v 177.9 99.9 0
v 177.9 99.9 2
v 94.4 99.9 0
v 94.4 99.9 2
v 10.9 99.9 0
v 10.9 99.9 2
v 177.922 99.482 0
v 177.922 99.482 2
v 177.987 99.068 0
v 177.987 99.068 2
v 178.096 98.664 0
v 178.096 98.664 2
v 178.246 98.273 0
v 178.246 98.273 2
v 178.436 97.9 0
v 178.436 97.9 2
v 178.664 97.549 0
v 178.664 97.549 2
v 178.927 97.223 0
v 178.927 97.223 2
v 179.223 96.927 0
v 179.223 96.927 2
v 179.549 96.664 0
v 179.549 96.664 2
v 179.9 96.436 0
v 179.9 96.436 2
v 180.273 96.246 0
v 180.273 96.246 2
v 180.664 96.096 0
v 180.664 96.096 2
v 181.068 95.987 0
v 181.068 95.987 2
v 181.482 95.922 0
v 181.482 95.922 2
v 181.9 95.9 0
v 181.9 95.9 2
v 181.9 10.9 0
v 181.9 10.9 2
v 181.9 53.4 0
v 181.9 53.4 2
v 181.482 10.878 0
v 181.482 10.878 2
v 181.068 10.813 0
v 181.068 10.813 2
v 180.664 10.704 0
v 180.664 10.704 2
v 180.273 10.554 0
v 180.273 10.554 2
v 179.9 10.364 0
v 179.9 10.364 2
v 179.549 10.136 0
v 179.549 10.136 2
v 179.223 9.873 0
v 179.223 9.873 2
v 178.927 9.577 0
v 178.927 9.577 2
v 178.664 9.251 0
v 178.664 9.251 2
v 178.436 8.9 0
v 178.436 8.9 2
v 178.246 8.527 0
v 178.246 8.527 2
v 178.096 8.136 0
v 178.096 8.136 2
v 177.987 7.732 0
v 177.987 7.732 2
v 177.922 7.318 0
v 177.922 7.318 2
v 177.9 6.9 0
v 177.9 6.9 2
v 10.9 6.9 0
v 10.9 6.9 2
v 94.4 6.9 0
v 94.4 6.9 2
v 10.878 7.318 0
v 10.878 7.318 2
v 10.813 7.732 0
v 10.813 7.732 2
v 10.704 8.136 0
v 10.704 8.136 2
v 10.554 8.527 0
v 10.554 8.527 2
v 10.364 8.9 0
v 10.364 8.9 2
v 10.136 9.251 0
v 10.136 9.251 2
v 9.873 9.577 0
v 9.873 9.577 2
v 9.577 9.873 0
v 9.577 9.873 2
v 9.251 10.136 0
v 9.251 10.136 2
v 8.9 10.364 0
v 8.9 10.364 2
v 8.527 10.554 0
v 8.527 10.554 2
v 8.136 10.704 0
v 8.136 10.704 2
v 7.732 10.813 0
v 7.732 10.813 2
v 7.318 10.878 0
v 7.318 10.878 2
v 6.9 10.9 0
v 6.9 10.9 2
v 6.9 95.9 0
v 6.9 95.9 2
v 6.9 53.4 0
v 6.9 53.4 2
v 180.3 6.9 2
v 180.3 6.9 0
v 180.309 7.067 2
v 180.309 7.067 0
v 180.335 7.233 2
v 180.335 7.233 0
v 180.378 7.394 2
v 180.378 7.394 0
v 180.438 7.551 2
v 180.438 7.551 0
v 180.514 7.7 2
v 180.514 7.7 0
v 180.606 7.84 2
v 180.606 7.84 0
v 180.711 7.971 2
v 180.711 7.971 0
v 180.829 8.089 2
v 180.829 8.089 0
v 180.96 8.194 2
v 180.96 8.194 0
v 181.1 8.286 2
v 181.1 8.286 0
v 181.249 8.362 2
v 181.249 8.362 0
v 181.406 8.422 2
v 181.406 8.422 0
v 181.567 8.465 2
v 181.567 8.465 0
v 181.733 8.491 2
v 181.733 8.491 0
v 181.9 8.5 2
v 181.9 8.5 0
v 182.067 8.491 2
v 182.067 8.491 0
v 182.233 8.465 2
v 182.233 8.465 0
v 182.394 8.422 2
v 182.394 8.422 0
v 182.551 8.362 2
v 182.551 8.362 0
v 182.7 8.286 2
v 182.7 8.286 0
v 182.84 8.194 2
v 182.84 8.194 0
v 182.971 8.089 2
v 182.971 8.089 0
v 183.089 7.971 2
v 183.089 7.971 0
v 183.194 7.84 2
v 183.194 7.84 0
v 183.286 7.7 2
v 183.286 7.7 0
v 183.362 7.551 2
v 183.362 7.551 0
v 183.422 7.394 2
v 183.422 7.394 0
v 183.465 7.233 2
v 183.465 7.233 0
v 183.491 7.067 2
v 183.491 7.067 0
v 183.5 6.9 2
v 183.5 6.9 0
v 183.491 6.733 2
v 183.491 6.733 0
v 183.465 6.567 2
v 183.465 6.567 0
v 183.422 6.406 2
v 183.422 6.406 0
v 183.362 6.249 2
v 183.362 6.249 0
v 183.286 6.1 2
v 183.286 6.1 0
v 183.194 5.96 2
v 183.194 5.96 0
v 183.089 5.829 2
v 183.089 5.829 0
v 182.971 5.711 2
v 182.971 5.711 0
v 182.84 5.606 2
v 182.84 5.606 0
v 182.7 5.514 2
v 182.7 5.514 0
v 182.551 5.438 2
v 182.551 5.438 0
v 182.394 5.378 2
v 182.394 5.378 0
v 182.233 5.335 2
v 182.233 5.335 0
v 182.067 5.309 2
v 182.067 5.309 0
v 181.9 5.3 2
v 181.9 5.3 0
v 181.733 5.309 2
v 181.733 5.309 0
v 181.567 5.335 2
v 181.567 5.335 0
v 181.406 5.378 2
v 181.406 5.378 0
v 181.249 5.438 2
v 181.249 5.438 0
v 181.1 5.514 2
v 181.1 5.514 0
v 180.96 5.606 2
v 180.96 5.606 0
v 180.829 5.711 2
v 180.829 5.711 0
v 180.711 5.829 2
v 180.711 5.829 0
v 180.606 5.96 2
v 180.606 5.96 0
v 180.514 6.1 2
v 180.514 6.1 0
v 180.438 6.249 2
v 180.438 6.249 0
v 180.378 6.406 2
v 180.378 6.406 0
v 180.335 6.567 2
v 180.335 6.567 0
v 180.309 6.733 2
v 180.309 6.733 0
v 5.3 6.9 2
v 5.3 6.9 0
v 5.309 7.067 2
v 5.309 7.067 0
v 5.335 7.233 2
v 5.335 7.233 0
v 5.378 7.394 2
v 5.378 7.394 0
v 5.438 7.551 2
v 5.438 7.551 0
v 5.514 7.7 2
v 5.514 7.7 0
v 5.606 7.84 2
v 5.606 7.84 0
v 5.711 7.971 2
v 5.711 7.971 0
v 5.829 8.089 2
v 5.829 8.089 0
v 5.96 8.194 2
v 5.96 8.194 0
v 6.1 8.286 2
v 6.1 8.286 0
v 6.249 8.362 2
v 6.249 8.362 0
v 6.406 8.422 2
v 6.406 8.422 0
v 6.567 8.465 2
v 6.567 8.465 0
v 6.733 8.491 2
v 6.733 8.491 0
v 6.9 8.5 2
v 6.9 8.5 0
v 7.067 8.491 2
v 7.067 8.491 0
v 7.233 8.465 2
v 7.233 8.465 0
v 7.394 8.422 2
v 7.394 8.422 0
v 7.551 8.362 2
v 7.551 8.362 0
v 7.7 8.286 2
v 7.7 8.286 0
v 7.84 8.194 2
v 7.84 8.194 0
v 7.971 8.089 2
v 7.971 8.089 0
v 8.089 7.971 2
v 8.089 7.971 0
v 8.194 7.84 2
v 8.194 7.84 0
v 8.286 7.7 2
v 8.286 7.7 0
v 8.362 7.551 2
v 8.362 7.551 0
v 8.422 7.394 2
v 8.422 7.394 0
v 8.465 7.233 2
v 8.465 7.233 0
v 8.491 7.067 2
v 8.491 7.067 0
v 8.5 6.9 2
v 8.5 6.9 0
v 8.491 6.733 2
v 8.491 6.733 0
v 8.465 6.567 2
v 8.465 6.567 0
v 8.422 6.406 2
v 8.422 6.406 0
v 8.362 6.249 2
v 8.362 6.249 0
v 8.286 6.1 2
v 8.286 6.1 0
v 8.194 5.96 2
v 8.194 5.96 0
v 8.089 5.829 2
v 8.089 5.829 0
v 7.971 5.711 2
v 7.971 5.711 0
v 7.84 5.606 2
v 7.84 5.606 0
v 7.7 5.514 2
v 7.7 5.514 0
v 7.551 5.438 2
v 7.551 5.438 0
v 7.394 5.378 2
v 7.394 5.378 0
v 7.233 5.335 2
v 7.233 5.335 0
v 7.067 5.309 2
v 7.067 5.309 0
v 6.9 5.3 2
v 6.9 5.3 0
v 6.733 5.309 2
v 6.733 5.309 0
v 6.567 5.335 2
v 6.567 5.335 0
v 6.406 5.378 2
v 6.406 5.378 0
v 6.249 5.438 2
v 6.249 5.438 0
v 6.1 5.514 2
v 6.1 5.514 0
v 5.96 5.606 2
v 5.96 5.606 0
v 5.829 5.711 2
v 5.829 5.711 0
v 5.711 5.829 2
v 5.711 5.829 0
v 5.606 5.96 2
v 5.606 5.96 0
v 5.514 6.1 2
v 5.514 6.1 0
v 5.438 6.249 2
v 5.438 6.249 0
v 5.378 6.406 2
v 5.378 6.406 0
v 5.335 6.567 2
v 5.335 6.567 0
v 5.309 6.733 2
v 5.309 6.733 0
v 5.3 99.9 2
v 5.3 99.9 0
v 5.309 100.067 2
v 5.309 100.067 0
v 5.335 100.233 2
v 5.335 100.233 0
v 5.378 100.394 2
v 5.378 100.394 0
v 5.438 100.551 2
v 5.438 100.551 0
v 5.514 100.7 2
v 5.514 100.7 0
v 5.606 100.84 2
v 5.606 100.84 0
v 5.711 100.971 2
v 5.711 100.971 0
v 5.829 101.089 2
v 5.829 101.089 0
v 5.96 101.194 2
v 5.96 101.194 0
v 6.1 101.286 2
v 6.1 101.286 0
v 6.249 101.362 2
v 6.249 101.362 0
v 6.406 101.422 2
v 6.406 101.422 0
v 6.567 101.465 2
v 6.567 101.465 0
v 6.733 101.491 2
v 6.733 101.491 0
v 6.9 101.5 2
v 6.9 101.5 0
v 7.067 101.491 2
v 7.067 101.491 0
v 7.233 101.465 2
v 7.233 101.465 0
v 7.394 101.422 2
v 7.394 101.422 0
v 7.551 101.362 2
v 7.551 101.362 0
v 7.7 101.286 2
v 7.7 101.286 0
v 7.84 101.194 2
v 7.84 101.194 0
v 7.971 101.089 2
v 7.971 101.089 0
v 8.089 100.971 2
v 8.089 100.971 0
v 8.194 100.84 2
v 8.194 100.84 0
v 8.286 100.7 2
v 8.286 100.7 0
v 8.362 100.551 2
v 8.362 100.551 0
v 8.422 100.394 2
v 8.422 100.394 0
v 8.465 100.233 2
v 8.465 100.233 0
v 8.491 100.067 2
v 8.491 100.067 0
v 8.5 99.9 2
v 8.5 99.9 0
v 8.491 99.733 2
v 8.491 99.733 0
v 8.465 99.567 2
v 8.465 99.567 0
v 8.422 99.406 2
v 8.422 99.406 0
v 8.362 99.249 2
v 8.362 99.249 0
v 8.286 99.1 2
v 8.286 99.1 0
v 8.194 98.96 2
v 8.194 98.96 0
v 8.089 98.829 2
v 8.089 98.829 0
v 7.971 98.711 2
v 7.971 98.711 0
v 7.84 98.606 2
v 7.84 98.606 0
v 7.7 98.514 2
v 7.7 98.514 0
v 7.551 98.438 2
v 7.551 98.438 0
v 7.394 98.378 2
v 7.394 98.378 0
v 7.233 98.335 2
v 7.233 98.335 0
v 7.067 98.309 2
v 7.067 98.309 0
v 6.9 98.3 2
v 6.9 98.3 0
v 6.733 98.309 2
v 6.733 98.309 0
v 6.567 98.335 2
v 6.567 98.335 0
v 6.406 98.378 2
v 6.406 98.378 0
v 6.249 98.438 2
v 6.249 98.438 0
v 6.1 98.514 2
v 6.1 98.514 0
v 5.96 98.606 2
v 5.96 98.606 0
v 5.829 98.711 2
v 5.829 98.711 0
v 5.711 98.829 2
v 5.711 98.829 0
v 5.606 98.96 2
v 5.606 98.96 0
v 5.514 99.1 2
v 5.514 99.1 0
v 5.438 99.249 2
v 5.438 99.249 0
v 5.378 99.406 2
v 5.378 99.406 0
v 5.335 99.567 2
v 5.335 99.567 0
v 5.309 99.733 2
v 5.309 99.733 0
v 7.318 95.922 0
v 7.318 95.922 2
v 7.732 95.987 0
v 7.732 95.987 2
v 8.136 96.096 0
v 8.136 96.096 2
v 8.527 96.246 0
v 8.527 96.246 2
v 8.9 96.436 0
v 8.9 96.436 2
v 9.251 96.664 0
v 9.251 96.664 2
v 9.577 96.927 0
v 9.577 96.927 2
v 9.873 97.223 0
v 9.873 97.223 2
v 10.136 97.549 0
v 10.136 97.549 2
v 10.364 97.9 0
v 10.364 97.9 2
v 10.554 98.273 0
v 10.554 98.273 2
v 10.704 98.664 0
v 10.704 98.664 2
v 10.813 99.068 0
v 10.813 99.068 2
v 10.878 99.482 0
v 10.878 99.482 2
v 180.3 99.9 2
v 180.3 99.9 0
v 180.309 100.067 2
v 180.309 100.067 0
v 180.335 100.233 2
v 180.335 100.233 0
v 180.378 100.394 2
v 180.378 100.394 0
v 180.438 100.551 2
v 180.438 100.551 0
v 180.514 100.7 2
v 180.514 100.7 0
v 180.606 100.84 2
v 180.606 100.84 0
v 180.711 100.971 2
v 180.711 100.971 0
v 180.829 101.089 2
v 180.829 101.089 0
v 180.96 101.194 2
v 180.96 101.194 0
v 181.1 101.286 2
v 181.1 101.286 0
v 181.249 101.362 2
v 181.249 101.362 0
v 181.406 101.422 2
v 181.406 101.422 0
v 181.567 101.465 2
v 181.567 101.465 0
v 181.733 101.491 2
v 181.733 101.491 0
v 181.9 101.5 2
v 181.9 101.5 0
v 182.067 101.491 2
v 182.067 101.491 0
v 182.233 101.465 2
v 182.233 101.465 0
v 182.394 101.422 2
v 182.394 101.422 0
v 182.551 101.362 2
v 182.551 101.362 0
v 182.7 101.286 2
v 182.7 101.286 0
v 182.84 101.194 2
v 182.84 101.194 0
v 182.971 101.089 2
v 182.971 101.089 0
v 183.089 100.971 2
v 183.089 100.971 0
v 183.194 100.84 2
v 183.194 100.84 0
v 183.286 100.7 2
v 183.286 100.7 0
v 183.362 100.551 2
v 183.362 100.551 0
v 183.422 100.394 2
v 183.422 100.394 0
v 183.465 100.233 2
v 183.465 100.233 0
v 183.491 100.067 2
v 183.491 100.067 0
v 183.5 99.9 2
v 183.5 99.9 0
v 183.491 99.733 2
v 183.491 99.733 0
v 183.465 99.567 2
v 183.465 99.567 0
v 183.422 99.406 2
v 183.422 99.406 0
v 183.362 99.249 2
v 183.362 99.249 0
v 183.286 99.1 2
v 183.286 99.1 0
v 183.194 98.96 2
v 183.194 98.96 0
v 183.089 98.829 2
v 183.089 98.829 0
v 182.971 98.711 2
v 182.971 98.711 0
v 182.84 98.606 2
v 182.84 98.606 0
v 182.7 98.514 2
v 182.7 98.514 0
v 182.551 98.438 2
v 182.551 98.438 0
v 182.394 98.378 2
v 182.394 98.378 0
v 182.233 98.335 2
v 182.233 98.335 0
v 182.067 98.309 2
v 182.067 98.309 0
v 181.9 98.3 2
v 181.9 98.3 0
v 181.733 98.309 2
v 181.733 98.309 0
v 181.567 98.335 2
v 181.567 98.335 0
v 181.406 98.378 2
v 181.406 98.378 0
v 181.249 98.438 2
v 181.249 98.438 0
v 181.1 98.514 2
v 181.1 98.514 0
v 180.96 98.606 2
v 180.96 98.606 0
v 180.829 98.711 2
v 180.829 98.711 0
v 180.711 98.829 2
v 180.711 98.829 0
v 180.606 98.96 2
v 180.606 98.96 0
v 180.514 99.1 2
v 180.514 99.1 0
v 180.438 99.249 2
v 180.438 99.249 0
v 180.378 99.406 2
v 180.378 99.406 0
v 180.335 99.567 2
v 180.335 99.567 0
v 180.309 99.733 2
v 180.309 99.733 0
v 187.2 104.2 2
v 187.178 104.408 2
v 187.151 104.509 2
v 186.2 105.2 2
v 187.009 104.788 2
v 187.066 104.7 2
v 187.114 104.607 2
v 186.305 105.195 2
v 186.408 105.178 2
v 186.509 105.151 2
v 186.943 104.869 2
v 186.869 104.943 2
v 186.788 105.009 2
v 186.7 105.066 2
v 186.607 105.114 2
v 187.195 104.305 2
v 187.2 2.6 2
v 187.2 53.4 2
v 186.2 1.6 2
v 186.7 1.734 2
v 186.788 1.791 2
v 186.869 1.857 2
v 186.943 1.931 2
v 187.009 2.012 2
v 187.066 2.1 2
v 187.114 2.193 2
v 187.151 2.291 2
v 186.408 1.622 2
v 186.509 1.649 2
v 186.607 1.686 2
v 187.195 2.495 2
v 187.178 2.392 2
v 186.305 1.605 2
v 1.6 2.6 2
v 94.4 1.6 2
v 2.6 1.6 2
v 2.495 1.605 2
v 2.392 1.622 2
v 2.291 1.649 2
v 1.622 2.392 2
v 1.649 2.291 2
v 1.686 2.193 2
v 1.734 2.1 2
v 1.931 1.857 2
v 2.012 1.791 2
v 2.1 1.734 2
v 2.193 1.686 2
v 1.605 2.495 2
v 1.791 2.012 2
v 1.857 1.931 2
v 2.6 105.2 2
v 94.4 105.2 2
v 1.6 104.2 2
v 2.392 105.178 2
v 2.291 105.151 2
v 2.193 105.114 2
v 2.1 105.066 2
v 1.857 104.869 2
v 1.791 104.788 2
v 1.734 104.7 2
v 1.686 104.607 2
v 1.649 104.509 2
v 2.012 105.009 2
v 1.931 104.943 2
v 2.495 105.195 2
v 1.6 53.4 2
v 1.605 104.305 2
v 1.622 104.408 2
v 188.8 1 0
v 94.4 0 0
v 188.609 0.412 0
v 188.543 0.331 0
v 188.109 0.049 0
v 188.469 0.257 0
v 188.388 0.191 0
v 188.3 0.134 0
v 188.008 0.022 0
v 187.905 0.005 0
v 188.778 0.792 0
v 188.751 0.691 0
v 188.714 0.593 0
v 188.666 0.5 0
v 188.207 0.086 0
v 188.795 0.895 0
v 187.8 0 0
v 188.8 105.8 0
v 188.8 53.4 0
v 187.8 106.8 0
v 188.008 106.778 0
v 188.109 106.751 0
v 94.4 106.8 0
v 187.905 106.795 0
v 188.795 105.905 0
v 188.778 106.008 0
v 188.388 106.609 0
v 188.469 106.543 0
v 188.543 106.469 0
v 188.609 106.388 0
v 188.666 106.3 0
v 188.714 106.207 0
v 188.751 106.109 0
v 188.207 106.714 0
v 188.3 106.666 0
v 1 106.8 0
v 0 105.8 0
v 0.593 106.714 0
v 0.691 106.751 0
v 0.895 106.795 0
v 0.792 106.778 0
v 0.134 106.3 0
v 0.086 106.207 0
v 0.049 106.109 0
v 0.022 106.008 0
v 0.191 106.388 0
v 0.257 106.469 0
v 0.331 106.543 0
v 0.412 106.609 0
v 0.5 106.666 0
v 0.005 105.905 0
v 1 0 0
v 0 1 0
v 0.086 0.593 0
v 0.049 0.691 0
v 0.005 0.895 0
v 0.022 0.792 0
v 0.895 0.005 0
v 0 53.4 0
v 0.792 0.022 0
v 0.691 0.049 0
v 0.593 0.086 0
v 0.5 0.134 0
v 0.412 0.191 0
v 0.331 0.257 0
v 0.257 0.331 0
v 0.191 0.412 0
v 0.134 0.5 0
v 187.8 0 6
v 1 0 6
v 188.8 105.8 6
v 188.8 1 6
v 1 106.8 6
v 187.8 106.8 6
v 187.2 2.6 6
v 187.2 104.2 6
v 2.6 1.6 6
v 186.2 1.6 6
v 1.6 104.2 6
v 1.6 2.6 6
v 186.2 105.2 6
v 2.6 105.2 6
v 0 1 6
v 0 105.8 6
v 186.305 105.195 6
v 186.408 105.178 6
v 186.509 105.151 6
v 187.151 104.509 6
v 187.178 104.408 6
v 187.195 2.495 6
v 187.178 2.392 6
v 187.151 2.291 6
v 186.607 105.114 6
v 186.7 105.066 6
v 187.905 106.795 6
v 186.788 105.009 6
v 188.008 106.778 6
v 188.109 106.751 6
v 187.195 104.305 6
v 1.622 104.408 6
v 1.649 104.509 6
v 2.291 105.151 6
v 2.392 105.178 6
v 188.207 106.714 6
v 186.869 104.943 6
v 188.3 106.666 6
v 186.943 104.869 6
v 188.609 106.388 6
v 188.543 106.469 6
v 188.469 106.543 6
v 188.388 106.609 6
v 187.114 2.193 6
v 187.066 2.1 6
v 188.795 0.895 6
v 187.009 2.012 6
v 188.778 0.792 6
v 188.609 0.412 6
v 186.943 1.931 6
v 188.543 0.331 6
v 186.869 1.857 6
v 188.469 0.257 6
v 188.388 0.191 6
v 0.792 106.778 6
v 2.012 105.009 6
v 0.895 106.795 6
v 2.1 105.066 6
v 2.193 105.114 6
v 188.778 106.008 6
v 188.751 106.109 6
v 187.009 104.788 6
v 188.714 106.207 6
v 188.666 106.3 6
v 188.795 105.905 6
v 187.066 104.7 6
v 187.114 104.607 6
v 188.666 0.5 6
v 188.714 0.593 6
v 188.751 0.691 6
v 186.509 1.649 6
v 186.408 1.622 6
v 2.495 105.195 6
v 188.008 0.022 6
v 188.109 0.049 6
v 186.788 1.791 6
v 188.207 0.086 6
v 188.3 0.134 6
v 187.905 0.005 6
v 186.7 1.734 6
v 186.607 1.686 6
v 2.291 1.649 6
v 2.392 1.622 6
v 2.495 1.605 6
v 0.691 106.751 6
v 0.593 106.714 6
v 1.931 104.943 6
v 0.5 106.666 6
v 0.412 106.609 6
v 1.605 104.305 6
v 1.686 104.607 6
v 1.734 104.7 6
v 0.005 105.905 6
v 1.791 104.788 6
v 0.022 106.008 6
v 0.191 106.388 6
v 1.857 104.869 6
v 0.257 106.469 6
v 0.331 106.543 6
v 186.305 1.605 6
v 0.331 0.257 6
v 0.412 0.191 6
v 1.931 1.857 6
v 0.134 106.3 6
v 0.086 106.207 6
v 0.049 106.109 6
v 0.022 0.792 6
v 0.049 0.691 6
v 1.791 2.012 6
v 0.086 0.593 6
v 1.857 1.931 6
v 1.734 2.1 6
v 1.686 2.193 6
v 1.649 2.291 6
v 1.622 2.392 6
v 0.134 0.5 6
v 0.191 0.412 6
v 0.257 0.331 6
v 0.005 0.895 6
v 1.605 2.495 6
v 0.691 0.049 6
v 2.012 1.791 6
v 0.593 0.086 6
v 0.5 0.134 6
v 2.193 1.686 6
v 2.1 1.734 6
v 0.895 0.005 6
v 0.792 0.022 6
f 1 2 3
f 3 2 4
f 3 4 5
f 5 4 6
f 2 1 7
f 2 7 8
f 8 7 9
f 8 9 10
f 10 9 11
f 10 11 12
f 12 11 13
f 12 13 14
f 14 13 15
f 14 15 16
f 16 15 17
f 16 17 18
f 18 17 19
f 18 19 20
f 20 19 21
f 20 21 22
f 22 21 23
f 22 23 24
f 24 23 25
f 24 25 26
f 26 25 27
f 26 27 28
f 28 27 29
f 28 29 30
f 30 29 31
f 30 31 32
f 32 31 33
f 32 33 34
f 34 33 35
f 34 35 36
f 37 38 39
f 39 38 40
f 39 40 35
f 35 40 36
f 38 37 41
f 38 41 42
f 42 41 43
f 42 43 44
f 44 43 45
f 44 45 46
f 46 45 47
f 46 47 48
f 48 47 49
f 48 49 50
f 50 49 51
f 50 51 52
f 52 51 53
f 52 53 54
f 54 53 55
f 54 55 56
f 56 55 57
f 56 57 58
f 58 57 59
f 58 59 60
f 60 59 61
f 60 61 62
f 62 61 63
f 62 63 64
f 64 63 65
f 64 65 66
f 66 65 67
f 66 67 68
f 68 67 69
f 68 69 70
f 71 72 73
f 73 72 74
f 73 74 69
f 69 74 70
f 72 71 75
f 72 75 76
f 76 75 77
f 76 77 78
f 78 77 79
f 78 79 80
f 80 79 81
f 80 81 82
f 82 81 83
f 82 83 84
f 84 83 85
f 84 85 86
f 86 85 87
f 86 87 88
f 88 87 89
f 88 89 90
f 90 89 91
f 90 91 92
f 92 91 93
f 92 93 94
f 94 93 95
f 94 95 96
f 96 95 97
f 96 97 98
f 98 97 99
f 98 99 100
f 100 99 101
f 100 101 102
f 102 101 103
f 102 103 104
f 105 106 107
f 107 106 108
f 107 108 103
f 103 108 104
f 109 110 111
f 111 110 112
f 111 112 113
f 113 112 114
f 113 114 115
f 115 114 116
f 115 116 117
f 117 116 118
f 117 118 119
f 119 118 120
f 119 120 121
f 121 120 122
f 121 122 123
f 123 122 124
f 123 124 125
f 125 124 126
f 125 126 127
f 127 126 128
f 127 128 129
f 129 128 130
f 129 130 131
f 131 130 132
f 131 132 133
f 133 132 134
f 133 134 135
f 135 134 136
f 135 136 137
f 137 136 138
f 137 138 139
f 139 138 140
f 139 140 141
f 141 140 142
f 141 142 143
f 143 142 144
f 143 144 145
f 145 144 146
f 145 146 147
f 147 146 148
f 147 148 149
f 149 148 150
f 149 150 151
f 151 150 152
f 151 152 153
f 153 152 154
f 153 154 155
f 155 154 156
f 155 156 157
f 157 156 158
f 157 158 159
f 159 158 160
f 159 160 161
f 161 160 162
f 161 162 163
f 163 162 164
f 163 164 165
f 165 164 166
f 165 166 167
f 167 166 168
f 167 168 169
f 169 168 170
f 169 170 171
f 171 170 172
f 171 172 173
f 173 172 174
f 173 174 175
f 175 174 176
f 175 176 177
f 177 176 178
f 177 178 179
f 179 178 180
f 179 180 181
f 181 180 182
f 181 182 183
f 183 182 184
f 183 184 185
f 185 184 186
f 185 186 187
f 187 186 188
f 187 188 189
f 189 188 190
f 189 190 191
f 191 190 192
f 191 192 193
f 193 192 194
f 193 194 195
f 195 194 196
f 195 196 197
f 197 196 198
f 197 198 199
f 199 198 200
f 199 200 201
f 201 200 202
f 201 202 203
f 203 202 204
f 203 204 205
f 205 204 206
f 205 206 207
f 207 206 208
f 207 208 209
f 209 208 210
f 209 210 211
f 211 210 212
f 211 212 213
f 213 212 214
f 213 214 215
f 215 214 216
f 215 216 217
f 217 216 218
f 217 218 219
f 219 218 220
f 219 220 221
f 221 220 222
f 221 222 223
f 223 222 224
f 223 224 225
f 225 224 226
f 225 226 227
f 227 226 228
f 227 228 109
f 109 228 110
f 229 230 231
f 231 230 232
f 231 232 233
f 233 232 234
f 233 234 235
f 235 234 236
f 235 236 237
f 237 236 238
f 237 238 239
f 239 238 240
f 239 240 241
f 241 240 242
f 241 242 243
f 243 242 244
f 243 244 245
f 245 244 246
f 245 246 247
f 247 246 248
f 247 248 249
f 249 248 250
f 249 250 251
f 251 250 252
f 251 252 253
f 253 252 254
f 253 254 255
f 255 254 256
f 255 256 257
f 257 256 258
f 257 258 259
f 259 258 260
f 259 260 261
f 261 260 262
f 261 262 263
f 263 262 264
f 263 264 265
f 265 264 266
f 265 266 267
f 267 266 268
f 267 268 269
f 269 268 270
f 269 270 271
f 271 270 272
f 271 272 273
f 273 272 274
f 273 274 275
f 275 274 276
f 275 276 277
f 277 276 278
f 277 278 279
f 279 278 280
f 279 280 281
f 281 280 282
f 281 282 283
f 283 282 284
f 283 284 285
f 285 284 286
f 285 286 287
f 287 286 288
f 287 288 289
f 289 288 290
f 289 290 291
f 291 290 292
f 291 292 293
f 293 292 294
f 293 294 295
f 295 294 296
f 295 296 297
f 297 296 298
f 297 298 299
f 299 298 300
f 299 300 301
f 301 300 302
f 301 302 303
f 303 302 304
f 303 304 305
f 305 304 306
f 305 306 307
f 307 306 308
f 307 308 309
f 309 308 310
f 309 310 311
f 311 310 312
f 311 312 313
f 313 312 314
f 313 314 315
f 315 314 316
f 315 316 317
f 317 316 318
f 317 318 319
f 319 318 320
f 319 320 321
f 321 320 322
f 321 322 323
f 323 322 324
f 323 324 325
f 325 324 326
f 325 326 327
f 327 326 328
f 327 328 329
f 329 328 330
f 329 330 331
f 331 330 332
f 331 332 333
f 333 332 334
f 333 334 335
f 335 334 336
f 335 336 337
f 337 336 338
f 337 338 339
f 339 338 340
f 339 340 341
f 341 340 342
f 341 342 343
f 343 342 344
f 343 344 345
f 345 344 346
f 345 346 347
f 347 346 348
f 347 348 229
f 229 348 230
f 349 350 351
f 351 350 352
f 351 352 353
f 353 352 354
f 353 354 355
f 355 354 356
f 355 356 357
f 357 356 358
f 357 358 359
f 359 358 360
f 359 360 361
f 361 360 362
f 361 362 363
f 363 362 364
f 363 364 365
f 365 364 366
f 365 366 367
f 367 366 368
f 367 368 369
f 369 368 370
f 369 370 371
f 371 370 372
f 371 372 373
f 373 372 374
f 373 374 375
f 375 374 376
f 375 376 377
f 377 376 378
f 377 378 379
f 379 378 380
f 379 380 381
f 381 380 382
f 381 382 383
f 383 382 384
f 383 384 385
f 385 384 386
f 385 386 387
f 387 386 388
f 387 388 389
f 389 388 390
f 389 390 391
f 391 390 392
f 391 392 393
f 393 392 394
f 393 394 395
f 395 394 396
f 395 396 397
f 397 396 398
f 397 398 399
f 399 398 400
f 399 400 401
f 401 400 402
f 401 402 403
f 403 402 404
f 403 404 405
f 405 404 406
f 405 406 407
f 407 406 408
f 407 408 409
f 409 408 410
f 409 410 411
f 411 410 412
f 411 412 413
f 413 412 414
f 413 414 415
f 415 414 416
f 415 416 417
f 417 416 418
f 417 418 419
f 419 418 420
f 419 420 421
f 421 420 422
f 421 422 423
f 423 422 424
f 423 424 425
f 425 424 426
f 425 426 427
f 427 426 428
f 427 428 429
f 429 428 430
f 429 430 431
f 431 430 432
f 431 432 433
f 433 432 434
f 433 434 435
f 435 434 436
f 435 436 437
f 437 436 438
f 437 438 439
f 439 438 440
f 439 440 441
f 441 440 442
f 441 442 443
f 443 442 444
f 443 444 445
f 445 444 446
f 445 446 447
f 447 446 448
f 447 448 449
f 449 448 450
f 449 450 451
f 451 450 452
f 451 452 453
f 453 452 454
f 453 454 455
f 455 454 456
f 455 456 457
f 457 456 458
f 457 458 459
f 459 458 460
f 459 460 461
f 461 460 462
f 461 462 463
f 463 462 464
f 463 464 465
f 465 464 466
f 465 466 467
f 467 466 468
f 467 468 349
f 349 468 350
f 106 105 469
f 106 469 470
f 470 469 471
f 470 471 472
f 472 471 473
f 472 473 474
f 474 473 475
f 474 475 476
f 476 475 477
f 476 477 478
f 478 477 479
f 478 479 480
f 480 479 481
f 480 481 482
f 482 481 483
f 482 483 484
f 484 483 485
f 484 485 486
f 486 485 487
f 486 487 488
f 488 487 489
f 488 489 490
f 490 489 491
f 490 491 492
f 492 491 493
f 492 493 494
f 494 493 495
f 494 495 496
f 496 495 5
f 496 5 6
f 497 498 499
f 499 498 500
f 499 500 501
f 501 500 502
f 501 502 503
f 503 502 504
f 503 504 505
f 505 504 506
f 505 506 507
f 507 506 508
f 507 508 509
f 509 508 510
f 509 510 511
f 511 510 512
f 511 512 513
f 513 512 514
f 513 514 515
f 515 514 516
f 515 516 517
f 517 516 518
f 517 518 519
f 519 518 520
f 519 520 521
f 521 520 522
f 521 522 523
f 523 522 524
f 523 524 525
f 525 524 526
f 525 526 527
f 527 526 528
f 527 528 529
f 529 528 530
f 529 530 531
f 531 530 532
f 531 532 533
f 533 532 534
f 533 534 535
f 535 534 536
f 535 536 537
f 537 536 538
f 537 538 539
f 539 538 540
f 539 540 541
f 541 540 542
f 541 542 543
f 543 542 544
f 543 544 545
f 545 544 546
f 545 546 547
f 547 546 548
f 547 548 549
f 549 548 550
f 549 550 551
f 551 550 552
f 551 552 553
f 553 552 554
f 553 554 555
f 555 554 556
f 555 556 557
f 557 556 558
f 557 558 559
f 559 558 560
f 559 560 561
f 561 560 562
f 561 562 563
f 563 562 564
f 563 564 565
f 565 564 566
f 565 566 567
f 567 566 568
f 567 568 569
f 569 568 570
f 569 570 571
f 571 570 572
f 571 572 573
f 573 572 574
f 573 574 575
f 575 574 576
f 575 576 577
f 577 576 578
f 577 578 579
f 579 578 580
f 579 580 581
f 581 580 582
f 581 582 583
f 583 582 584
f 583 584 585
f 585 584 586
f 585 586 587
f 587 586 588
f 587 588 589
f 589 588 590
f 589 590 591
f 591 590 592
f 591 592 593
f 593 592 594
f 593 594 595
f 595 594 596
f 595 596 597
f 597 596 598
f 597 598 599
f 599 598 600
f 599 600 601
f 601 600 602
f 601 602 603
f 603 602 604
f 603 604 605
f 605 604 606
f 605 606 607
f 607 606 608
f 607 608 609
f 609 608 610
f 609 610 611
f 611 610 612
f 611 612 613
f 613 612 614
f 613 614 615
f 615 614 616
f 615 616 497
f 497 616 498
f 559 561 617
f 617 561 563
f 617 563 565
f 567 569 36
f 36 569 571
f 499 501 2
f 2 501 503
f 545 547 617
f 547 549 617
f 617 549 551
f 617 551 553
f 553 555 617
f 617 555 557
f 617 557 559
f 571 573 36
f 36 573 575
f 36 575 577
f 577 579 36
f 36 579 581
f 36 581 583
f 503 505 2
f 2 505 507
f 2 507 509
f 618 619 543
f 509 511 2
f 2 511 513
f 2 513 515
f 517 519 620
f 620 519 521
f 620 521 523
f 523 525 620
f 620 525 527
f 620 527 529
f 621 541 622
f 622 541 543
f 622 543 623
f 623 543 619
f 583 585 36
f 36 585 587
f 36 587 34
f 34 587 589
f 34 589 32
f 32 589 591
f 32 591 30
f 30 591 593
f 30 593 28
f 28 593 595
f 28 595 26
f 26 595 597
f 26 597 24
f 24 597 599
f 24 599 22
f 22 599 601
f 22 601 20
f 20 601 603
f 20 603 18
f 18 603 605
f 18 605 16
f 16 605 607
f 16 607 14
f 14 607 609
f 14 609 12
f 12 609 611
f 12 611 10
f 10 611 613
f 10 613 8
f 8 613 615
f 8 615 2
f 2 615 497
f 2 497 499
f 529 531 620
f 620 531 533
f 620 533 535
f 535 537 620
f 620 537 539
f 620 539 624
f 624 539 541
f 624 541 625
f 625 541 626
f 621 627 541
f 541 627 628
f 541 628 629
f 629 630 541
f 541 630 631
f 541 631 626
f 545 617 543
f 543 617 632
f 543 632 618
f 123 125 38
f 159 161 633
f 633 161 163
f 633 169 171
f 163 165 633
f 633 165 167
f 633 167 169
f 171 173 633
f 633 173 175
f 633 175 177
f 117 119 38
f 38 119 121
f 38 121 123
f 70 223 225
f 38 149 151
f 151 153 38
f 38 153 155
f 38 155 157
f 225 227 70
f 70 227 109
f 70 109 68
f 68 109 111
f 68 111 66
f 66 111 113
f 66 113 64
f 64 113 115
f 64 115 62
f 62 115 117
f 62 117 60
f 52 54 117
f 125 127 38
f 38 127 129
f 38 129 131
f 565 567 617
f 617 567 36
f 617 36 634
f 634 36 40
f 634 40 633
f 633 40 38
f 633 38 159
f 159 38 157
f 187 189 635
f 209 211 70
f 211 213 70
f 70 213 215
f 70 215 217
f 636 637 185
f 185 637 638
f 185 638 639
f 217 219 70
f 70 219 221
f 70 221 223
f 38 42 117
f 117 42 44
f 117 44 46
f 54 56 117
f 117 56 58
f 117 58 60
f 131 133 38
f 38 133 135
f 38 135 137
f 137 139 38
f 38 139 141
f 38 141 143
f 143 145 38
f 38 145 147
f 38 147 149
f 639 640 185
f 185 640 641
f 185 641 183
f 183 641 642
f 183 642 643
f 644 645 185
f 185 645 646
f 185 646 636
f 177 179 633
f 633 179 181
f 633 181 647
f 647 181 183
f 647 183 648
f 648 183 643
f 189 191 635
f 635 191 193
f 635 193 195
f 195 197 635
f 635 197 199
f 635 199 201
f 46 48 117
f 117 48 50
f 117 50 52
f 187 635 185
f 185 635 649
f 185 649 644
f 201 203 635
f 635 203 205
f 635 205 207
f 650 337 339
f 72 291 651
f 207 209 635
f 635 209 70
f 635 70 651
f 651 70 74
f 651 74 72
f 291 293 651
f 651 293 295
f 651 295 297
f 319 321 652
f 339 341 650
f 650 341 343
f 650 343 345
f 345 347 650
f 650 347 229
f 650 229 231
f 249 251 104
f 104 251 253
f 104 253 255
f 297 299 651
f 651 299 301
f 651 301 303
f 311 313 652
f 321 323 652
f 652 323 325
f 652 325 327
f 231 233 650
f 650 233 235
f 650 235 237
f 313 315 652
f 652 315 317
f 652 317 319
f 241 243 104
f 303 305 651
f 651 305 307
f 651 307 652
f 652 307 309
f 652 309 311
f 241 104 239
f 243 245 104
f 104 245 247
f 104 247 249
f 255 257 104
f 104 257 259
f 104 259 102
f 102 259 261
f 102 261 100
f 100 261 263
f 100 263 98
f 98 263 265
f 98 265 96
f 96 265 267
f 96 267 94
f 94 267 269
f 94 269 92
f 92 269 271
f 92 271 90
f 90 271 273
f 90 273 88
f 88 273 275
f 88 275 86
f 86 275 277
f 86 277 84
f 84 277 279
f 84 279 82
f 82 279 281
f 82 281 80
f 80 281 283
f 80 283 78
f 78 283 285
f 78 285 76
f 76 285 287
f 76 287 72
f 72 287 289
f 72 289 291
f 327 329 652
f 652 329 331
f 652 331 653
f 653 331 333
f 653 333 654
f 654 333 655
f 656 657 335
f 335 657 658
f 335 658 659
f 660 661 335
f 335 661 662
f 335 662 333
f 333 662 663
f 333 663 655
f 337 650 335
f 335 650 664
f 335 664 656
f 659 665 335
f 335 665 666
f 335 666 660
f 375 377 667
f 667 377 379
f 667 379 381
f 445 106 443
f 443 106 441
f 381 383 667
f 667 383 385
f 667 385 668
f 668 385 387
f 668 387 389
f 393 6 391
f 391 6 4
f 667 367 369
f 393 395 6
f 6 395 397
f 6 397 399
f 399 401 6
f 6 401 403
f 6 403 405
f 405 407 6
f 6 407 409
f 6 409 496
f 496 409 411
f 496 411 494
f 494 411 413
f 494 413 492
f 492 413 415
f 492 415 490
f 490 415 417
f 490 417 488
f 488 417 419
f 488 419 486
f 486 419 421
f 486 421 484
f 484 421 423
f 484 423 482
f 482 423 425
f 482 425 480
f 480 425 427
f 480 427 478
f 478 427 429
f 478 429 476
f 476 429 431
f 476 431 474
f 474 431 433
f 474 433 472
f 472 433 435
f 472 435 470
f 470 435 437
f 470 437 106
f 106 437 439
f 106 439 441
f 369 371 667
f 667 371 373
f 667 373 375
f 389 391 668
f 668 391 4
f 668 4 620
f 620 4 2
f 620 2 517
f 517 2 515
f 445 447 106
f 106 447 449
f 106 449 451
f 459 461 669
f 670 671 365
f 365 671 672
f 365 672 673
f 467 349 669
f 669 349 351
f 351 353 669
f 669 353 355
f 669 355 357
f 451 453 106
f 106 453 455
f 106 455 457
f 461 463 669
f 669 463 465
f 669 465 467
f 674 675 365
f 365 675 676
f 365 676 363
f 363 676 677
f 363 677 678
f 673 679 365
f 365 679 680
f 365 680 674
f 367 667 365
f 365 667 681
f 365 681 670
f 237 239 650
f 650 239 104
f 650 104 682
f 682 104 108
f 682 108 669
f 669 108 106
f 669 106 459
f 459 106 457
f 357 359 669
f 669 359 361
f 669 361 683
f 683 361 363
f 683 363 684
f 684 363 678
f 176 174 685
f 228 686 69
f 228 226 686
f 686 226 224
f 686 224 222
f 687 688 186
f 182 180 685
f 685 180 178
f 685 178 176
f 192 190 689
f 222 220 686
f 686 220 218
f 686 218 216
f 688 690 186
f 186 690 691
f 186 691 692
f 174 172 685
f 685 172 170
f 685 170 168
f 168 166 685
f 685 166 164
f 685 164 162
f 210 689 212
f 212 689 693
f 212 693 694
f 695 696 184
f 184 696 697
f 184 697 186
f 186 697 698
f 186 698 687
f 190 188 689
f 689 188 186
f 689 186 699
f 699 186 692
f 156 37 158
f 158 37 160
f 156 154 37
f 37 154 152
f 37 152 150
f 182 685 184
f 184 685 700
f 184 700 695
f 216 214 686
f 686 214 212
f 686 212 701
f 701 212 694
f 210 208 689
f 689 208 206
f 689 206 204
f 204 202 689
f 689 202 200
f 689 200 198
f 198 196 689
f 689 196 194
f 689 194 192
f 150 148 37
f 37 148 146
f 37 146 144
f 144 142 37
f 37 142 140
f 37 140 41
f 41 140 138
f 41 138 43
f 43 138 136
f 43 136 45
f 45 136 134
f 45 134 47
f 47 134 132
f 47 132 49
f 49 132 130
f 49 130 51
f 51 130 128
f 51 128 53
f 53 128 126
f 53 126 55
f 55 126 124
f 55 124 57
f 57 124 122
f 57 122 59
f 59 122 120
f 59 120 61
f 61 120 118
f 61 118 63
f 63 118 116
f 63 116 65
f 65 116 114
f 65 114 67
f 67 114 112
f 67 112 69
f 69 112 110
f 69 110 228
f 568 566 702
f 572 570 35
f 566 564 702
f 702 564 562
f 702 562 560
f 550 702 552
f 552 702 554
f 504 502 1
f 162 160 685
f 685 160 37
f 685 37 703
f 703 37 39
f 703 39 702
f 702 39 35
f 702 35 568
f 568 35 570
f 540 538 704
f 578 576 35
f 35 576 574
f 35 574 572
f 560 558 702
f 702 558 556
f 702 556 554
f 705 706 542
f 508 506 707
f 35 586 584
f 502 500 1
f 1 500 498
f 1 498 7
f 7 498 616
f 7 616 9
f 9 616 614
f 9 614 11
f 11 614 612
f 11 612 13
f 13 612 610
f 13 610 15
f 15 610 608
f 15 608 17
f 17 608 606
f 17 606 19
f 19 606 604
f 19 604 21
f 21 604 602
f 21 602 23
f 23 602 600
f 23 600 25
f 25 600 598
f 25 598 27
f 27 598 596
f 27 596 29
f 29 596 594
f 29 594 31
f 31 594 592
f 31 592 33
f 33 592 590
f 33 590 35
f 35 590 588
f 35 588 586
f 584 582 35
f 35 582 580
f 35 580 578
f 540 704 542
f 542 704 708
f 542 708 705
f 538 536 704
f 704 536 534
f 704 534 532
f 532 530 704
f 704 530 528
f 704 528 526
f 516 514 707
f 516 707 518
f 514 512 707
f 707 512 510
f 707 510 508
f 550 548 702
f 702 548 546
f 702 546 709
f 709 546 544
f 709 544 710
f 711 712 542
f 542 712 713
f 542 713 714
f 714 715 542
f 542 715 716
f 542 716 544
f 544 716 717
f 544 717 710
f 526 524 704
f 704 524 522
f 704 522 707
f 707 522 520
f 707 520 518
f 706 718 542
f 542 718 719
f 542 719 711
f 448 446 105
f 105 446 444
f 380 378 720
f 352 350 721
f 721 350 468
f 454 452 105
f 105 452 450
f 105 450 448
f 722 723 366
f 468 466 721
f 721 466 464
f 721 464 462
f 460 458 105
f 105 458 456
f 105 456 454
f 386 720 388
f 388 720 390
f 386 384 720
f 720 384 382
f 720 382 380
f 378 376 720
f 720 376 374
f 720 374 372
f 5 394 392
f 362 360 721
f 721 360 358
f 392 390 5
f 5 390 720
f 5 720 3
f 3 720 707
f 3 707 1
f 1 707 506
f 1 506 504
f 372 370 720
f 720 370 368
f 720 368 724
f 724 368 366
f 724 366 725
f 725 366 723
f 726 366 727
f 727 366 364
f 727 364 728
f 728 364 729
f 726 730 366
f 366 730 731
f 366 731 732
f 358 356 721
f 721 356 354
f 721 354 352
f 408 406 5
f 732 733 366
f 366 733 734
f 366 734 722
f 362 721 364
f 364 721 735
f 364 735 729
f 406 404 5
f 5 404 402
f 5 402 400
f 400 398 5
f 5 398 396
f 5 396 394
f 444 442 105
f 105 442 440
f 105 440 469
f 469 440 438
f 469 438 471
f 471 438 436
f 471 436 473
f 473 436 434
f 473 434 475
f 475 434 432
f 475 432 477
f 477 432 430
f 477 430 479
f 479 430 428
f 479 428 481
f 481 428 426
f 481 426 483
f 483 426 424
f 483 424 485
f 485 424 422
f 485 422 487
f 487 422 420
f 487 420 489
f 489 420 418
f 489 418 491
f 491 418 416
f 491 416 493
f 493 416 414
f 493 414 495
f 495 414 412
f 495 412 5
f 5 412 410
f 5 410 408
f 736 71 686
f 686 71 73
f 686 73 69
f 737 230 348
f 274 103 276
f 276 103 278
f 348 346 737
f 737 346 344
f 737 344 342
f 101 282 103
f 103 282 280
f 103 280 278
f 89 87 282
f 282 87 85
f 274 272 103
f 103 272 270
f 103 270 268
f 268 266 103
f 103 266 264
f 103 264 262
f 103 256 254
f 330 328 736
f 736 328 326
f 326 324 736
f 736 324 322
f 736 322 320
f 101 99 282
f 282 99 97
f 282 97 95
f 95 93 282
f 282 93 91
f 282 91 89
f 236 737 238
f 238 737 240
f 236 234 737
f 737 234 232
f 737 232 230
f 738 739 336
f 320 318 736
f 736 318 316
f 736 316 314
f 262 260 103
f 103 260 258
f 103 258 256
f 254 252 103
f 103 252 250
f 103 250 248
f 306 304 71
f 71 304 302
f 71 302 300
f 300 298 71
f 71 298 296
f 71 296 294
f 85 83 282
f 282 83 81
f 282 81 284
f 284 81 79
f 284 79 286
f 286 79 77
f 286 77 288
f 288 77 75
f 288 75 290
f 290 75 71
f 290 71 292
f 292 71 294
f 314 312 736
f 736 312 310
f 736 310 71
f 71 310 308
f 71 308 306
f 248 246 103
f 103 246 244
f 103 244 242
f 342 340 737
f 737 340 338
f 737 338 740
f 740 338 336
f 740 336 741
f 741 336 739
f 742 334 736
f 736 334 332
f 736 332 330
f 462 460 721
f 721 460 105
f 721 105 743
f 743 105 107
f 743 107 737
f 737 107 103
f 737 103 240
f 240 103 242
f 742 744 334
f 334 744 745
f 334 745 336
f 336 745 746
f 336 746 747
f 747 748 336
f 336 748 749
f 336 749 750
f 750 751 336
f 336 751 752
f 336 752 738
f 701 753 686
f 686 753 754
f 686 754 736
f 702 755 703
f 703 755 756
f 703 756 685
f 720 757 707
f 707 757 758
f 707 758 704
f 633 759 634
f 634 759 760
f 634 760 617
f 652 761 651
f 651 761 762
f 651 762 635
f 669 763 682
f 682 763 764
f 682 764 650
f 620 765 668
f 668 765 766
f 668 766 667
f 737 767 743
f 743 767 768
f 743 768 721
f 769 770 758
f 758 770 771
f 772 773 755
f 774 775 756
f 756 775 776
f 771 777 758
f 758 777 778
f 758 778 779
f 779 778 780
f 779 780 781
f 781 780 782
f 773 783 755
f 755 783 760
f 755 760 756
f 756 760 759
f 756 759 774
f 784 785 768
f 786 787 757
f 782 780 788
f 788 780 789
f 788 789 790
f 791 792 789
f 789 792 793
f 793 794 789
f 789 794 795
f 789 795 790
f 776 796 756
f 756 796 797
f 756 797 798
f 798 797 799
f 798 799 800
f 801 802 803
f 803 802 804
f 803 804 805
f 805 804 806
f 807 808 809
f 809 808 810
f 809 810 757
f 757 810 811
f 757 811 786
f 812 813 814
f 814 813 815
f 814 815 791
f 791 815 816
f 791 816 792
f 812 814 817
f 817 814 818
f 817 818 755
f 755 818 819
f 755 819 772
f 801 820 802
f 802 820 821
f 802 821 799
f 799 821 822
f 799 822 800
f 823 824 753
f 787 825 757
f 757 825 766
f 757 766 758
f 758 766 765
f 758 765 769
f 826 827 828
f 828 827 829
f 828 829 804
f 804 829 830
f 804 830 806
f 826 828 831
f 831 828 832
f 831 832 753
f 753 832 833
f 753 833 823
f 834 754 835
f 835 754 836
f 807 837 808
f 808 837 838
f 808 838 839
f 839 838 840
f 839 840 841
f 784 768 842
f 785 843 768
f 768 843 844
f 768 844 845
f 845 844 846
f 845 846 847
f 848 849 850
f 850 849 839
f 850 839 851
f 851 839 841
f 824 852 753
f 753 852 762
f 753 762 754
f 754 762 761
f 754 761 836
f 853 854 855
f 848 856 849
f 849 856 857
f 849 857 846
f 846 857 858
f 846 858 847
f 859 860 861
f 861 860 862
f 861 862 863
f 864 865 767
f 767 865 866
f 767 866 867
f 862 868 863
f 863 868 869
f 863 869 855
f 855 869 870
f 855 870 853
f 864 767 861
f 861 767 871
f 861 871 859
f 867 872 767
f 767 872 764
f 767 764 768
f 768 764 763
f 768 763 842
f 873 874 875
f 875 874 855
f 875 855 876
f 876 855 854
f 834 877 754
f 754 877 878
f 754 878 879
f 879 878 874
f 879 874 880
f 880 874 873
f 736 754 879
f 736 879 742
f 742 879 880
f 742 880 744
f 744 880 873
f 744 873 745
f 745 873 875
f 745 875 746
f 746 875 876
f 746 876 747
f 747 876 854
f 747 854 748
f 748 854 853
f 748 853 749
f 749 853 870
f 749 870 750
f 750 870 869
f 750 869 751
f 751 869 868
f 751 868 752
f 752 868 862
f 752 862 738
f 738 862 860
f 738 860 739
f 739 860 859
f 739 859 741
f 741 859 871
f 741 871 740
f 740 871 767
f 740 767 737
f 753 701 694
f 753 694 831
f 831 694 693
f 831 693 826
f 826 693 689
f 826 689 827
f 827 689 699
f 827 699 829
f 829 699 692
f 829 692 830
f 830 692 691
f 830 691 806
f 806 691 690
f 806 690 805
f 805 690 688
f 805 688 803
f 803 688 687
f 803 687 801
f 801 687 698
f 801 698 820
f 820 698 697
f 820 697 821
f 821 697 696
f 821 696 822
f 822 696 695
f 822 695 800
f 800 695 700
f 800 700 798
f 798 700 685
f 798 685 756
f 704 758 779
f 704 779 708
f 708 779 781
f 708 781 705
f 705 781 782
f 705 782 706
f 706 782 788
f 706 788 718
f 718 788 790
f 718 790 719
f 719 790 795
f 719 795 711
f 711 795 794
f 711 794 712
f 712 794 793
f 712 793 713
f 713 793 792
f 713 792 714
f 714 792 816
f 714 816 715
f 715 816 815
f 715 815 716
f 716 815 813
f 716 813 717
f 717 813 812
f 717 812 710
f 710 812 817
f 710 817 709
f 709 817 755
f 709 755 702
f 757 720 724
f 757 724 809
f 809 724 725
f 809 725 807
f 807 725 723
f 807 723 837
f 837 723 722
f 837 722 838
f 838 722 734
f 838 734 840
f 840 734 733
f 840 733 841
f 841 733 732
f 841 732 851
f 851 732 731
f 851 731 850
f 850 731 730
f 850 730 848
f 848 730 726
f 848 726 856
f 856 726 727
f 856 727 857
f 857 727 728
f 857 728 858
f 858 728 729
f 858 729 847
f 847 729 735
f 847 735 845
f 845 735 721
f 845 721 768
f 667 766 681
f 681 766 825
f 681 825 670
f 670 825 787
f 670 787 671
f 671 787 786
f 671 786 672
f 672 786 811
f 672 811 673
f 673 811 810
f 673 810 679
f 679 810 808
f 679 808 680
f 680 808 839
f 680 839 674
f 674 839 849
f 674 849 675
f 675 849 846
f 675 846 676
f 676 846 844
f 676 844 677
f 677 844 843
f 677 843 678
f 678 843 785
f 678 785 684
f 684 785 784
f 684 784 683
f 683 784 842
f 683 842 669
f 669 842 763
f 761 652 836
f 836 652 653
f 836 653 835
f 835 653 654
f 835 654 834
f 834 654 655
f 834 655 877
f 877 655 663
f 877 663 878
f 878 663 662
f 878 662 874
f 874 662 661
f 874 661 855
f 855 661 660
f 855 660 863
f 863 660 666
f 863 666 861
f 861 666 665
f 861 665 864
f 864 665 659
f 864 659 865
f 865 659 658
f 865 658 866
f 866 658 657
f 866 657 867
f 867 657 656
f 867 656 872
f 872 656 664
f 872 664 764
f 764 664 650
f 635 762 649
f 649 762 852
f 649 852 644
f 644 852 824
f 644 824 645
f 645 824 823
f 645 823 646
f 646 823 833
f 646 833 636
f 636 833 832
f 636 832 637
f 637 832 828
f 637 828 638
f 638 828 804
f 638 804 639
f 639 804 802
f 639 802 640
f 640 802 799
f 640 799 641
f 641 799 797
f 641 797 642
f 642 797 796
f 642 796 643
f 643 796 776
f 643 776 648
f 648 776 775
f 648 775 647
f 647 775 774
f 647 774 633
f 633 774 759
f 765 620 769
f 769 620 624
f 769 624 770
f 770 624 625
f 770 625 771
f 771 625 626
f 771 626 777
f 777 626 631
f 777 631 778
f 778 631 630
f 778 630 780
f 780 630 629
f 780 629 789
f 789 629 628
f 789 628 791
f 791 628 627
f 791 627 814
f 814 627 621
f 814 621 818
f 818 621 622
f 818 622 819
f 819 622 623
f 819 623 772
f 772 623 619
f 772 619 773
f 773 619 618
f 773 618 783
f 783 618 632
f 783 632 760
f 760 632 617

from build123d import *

# Parameters (mm, degrees)
SKETCH_1_W      = 185.6
SKETCH_1_H      = 103.6
SKETCH_1_R      = 1.6
EXTRUDE_1_DEPTH = 2
SKETCH_1_3_W    = 188.8
SKETCH_1_3_H    = 106.8
SKETCH_1_3_W_2  = 185.6
SKETCH_1_3_H_2  = 103.6
EXTRUDE_2_DEPTH = 6
FILLET_1_R      = 1


with BuildPart() as part:
    # Эскиз1 → Бобышка-Вытянуть1 (new body)
    with BuildSketch(Plane.XY):
        with Locations((94.4, 53.4)):
            Rectangle(SKETCH_1_W, SKETCH_1_H)
        with BuildLine():
            ThreePointArc((177.9, 99.9), (179.071572875, 97.071572875), (181.9, 95.9))
            Line((181.9, 95.9), (181.9, 10.9))
            ThreePointArc((181.9, 10.9), (179.071572875, 9.728427125), (177.9, 6.9))
            Line((177.9, 6.9), (10.9, 6.9))
            ThreePointArc((10.9, 6.9), (9.728427125, 9.728427125), (6.9, 10.9))
            Line((6.9, 10.9), (6.9, 95.9))
            ThreePointArc((6.9, 95.9), (9.728427125, 97.071572875), (10.9, 99.9))
            Line((10.9, 99.9), (177.9, 99.9))
        make_face(mode=Mode.SUBTRACT)
        with Locations((181.9, 99.9)):
            Circle(SKETCH_1_R, mode=Mode.SUBTRACT)
        with Locations((181.9, 6.9)):
            Circle(SKETCH_1_R, mode=Mode.SUBTRACT)
        with Locations((6.9, 99.9)):
            Circle(SKETCH_1_R, mode=Mode.SUBTRACT)
        with Locations((6.9, 6.9)):
            Circle(SKETCH_1_R, mode=Mode.SUBTRACT)
    extrude(amount=EXTRUDE_1_DEPTH)

    # Эскиз1<3> → Бобышка-Вытянуть2 (add)
    with BuildSketch(Plane.XY):
        with Locations((94.4, 53.4)):
            Rectangle(SKETCH_1_3_W, SKETCH_1_3_H)
        with Locations((94.4, 53.4)):
            Rectangle(SKETCH_1_3_W_2, SKETCH_1_3_H_2, mode=Mode.SUBTRACT)
    extrude(amount=EXTRUDE_2_DEPTH)

    # Скругление1
    fillet_1_edges = [part.edges().sort_by_distance(p)[0] for p in [
        (0, 0, 3),
        (188.8, 0, 3),
        (188.8, 106.8, 3),
        (187.2, 105.2, 4),
        (187.2, 1.6, 4),
        (1.6, 1.6, 4),
        (1.6, 105.2, 4),
        (0, 106.8, 3),
    ]]
    fillet(fillet_1_edges, radius=FILLET_1_R)


solid = part.part
